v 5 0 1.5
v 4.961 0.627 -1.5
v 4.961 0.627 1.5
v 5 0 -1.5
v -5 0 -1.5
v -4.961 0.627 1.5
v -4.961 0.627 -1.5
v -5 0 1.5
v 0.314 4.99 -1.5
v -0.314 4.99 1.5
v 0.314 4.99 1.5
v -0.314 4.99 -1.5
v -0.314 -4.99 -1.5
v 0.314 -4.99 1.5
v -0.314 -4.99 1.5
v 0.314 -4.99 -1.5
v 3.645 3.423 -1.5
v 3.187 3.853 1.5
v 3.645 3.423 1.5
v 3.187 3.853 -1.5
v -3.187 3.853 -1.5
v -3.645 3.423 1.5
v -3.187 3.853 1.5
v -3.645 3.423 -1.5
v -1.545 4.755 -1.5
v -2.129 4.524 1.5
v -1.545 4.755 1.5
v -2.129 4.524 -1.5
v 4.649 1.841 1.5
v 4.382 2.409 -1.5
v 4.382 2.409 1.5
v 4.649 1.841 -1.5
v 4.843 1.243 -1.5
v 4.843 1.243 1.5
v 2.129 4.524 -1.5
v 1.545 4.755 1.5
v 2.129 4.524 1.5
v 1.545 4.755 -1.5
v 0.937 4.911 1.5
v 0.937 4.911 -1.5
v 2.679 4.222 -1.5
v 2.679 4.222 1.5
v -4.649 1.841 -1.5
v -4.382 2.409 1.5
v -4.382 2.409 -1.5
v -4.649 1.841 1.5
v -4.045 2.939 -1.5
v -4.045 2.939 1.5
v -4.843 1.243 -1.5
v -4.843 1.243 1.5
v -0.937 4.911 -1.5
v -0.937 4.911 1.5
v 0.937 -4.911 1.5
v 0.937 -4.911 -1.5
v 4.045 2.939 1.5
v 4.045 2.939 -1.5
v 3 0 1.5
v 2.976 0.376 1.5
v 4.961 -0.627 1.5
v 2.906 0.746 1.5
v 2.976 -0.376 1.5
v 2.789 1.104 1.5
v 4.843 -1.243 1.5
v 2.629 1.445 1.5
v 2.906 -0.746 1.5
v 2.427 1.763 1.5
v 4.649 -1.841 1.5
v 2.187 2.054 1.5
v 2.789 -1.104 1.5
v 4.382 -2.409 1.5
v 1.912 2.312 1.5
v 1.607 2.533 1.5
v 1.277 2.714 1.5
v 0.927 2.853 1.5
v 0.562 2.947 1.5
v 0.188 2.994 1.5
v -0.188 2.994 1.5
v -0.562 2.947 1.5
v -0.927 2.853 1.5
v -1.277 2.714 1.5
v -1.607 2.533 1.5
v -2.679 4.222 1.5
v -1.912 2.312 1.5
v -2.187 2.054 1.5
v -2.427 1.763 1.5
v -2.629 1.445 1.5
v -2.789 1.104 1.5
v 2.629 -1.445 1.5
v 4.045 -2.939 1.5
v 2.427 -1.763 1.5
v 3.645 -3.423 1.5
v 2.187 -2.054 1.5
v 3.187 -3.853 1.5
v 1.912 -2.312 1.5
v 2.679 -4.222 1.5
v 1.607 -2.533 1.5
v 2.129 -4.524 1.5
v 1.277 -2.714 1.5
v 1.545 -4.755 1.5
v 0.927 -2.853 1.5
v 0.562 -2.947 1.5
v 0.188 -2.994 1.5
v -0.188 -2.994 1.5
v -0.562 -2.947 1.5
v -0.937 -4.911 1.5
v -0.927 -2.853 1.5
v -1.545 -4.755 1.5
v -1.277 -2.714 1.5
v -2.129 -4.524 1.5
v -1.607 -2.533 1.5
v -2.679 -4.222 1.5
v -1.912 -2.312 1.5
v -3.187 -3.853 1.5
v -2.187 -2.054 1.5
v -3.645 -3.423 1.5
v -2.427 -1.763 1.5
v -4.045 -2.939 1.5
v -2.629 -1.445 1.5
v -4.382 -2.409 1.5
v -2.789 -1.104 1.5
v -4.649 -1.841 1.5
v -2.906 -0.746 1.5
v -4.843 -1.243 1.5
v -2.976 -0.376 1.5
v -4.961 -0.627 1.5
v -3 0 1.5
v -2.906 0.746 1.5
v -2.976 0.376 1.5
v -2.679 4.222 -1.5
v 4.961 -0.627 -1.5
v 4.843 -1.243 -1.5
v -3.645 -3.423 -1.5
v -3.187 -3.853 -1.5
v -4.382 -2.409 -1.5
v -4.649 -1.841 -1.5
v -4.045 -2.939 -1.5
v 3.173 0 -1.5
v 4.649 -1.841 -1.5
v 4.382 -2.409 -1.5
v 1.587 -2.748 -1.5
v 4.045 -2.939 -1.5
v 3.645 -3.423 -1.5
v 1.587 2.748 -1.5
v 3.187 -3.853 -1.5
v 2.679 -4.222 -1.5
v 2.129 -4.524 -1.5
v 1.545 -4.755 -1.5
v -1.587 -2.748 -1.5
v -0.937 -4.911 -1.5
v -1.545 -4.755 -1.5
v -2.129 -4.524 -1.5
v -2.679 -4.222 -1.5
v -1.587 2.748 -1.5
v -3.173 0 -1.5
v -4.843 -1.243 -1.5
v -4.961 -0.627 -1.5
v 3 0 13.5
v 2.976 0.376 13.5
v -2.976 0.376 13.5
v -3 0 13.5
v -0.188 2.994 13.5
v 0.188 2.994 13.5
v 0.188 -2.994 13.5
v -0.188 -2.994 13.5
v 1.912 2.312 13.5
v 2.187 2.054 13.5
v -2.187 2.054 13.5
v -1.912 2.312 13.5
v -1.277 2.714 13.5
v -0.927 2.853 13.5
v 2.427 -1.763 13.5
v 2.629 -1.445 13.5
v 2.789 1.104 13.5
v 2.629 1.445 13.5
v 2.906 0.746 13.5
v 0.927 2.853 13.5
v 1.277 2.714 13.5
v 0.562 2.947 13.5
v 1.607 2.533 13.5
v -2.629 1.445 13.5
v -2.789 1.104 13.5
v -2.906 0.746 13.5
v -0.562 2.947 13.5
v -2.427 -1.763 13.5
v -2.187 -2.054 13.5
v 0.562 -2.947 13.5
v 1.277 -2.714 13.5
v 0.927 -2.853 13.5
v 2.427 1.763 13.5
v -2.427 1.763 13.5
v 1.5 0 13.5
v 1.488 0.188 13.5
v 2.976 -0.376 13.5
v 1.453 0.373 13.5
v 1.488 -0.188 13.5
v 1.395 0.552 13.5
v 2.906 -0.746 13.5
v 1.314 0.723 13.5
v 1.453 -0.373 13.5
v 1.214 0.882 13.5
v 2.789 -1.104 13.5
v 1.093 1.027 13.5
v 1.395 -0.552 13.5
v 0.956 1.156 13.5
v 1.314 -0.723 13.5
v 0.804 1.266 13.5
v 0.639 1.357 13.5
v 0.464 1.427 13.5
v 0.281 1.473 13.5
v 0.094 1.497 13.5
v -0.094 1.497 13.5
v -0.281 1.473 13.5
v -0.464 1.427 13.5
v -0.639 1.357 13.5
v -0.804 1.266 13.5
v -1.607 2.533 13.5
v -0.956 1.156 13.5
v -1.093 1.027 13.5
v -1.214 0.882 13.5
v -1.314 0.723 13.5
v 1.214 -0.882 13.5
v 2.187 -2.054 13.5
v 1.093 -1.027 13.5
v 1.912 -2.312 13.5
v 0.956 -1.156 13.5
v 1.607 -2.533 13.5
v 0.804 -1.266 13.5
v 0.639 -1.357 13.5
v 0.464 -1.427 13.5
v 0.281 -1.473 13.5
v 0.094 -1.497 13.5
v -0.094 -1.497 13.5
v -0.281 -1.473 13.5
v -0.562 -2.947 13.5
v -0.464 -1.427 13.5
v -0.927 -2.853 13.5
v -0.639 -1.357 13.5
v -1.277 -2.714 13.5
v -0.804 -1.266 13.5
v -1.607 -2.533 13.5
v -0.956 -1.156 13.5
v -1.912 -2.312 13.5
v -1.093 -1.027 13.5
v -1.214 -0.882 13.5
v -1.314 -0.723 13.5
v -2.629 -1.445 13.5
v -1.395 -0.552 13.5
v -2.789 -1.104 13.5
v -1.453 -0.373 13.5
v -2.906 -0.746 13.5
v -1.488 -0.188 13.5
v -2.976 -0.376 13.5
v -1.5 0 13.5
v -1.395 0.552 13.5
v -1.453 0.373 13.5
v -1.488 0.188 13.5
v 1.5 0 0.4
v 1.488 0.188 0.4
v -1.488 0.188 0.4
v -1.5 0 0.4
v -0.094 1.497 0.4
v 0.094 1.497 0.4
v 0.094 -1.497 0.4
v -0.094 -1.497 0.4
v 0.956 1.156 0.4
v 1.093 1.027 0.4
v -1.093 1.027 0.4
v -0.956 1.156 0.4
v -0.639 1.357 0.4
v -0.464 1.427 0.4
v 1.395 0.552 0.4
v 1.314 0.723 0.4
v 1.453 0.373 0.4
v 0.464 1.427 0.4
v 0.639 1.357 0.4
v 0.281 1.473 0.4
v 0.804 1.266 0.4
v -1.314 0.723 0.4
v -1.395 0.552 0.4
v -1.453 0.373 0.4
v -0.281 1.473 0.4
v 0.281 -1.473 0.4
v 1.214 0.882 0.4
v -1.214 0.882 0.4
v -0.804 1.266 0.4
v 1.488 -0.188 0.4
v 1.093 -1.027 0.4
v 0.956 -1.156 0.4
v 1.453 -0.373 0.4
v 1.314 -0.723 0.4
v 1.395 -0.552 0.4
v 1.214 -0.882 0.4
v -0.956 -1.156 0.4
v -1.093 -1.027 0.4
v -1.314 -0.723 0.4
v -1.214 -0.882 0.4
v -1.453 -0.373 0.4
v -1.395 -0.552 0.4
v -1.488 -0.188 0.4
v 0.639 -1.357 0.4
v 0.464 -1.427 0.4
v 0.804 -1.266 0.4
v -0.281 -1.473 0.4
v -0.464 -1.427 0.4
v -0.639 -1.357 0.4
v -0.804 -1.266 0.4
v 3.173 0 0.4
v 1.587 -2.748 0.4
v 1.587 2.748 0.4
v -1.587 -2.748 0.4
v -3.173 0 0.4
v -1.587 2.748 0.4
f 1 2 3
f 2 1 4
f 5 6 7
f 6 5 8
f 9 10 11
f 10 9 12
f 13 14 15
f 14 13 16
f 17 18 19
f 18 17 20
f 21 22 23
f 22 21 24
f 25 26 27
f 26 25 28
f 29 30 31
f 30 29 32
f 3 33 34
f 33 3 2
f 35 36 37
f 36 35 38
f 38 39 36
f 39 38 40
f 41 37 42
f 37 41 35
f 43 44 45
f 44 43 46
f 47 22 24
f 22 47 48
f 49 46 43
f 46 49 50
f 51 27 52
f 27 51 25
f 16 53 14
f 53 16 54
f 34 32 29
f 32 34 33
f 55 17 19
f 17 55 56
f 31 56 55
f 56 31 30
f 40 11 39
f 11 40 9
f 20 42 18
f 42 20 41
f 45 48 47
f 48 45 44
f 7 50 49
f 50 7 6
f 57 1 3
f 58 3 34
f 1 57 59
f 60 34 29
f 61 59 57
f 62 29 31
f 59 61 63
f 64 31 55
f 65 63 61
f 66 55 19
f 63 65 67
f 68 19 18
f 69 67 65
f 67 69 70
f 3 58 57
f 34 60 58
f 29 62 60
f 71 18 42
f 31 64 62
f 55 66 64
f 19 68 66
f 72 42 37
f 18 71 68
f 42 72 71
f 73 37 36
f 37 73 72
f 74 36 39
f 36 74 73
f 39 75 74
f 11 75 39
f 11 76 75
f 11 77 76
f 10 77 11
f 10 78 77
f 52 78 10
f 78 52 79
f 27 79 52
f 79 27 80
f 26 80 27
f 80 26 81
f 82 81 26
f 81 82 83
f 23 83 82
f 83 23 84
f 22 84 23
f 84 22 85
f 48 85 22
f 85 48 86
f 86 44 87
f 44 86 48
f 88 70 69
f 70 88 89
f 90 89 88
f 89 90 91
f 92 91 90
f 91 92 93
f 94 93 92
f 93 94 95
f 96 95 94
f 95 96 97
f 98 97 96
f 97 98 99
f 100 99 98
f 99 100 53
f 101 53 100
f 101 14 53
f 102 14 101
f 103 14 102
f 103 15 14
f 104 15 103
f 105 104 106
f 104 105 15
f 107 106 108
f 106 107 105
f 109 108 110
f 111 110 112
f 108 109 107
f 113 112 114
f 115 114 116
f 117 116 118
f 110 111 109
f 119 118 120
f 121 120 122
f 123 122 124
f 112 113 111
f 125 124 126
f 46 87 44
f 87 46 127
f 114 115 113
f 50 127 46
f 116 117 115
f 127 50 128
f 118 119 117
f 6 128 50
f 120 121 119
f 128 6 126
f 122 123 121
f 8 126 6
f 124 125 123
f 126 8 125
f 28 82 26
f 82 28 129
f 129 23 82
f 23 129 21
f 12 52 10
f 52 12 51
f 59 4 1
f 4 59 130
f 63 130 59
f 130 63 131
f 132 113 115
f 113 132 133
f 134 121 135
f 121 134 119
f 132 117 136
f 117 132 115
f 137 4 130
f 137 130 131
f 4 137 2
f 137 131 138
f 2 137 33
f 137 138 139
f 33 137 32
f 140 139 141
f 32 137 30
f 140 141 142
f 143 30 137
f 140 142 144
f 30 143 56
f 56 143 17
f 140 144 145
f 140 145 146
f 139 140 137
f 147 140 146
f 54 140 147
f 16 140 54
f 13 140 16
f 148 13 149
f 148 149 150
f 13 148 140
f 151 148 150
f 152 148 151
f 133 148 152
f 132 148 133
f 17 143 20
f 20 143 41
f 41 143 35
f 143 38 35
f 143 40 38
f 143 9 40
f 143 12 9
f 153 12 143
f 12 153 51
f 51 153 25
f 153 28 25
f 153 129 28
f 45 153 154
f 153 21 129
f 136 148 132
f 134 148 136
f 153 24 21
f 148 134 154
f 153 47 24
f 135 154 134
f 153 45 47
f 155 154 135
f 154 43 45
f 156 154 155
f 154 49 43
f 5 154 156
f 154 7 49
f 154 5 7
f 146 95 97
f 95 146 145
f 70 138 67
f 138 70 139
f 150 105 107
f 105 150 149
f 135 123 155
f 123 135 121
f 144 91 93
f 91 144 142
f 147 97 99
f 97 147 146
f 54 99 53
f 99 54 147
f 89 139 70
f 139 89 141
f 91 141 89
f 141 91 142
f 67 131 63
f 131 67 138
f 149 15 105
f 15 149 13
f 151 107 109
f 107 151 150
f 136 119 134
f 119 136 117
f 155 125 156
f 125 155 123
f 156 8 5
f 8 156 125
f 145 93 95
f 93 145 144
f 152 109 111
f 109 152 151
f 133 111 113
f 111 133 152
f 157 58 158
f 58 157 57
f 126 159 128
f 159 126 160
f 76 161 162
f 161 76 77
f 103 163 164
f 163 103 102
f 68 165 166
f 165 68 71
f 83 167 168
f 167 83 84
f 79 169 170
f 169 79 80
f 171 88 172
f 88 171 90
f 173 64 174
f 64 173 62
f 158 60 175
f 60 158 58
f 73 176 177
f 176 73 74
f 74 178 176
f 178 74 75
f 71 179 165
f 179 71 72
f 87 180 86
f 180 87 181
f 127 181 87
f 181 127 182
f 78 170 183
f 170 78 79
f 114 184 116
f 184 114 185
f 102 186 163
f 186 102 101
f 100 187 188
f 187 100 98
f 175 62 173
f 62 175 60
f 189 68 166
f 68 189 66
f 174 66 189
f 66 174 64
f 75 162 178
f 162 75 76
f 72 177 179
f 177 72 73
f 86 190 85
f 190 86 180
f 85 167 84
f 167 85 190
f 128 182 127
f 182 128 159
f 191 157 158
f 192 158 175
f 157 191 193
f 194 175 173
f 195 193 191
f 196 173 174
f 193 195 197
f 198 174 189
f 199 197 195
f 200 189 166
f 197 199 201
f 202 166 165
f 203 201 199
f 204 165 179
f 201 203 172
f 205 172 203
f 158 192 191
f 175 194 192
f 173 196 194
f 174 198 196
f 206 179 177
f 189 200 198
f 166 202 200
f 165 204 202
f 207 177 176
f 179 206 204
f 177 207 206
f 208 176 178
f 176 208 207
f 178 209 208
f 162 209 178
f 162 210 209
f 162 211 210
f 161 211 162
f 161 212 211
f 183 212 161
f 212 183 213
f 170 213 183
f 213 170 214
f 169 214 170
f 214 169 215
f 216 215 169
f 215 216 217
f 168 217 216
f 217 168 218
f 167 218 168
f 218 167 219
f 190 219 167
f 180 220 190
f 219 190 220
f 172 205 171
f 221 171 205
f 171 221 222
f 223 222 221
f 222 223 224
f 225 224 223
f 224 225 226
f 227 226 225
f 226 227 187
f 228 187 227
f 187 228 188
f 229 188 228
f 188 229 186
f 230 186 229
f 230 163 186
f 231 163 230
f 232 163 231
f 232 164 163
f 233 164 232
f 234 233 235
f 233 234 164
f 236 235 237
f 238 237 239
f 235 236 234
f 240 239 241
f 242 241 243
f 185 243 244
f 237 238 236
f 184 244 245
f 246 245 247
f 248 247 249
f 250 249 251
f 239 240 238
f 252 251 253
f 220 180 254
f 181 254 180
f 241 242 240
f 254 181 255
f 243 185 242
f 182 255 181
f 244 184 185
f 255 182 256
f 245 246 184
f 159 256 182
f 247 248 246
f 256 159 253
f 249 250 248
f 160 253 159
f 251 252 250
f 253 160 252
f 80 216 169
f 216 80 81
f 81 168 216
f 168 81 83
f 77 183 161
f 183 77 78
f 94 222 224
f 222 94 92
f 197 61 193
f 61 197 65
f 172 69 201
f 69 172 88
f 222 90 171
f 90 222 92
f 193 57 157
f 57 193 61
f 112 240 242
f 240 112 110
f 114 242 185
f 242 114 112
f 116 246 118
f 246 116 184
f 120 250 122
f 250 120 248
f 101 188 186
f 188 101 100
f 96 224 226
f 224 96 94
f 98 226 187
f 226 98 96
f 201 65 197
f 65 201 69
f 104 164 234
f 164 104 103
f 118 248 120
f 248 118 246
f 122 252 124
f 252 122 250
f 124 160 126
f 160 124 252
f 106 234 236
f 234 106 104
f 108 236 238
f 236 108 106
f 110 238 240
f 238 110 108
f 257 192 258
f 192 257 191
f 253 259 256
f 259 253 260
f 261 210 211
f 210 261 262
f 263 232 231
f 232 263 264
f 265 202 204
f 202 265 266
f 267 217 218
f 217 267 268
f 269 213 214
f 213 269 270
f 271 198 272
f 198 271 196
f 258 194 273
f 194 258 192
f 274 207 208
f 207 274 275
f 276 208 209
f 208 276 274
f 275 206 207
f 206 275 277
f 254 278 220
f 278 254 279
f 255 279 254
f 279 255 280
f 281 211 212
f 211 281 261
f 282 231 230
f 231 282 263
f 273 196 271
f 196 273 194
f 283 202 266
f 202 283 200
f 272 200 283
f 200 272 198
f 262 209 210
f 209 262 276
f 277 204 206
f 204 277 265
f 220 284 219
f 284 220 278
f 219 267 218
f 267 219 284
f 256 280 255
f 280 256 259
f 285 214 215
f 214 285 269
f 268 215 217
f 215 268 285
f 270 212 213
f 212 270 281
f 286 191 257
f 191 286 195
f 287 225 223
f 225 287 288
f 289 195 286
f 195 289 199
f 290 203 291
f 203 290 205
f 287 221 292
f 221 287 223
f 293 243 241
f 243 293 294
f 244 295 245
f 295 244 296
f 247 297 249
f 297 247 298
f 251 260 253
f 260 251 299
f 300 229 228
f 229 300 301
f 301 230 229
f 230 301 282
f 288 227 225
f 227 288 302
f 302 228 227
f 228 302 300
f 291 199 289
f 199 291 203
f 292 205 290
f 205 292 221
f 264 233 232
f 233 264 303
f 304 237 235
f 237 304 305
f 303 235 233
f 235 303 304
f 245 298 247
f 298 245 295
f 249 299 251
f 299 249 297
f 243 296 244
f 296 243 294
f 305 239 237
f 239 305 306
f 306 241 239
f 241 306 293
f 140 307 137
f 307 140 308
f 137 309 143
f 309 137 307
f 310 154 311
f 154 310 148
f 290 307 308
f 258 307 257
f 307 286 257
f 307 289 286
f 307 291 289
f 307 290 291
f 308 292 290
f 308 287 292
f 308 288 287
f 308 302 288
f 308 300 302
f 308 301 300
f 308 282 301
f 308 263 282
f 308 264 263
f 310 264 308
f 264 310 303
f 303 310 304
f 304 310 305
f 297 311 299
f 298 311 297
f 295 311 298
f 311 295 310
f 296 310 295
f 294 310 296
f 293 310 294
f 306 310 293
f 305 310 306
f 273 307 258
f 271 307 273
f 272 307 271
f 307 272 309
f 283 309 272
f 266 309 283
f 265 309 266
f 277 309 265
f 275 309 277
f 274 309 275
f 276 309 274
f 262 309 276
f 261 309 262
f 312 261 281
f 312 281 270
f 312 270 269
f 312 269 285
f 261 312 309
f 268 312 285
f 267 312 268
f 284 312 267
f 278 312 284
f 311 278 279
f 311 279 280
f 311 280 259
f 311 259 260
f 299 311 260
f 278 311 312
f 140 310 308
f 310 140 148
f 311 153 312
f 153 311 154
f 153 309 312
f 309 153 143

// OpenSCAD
$fn = 50;


difference() {
	union() {
		translate(v = [0, 0, -1.5000000000]) {
			rotate(a = [0, 0, 0]) {
				cylinder(h = 3, r = 5.0000000000);
			}
		}
		translate(v = [0, 0, -1.5000000000]) {
			rotate(a = [0, 0, 0]) {
				cylinder(h = 15, r = 3.0000000000);
			}
		}
	}
	union() {
		translate(v = [0, 0, -125.0000000000]) {
			rotate(a = [0, 0, 0]) {
				cylinder(h = 250, r = 1.5000000000);
			}
		}
		translate(v = [0, 0, -2.1000000000]) {
			rotate(a = [0, 0, 0]) {
				#translate(v = [0, 0, 0]) {
					rotate(a = [0, 0, 0]) {
						linear_extrude(height = 2.5000000000) {
							polygon(points = [[3.1735000000, 0.0000000000], [1.5867500000, 2.7483316189], [-1.5867500000, 2.7483316189], [-3.1735000000, 0.0000000000], [-1.5867500000, -2.7483316189], [1.5867500000, -2.7483316189]]);
						}
					}
				}
			}
		}
	}
}
